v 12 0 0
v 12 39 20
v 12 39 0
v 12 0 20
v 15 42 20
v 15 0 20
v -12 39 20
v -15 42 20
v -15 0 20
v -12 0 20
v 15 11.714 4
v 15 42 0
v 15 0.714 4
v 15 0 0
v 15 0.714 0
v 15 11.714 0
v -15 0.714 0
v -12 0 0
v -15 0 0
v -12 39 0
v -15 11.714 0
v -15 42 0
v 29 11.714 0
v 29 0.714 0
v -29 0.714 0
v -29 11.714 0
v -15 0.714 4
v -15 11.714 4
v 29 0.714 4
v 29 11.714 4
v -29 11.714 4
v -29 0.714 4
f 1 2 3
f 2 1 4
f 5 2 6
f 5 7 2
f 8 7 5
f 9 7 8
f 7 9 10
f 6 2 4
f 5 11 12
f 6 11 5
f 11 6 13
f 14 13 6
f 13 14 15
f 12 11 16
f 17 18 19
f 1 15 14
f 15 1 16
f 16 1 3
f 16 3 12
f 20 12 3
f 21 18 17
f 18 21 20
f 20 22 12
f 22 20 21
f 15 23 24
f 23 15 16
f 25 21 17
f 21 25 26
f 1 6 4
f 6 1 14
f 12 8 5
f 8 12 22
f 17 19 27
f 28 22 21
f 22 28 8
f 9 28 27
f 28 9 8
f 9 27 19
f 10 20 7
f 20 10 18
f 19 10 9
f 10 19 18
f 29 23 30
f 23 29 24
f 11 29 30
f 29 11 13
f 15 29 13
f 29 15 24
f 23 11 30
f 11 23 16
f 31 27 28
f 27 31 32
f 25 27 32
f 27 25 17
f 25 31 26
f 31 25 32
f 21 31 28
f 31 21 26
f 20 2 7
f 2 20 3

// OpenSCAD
anchoCubo = 3;
alturaCubo = 20;
largoCubo = 42;
for (i = [12, -12-anchoCubo]){
    translate([i,0,0])
    cube([anchoCubo,largoCubo,alturaCubo]);
}
rotate([0,0,90])
translate([39,-15,0])
cube([anchoCubo,28,alturaCubo]);
for(i=[12,-26-anchoCubo]){
    rotate([0,90,0])
    translate([-4,1/1.4,i])
    cube([anchoCubo+1,11,17]);
   }
